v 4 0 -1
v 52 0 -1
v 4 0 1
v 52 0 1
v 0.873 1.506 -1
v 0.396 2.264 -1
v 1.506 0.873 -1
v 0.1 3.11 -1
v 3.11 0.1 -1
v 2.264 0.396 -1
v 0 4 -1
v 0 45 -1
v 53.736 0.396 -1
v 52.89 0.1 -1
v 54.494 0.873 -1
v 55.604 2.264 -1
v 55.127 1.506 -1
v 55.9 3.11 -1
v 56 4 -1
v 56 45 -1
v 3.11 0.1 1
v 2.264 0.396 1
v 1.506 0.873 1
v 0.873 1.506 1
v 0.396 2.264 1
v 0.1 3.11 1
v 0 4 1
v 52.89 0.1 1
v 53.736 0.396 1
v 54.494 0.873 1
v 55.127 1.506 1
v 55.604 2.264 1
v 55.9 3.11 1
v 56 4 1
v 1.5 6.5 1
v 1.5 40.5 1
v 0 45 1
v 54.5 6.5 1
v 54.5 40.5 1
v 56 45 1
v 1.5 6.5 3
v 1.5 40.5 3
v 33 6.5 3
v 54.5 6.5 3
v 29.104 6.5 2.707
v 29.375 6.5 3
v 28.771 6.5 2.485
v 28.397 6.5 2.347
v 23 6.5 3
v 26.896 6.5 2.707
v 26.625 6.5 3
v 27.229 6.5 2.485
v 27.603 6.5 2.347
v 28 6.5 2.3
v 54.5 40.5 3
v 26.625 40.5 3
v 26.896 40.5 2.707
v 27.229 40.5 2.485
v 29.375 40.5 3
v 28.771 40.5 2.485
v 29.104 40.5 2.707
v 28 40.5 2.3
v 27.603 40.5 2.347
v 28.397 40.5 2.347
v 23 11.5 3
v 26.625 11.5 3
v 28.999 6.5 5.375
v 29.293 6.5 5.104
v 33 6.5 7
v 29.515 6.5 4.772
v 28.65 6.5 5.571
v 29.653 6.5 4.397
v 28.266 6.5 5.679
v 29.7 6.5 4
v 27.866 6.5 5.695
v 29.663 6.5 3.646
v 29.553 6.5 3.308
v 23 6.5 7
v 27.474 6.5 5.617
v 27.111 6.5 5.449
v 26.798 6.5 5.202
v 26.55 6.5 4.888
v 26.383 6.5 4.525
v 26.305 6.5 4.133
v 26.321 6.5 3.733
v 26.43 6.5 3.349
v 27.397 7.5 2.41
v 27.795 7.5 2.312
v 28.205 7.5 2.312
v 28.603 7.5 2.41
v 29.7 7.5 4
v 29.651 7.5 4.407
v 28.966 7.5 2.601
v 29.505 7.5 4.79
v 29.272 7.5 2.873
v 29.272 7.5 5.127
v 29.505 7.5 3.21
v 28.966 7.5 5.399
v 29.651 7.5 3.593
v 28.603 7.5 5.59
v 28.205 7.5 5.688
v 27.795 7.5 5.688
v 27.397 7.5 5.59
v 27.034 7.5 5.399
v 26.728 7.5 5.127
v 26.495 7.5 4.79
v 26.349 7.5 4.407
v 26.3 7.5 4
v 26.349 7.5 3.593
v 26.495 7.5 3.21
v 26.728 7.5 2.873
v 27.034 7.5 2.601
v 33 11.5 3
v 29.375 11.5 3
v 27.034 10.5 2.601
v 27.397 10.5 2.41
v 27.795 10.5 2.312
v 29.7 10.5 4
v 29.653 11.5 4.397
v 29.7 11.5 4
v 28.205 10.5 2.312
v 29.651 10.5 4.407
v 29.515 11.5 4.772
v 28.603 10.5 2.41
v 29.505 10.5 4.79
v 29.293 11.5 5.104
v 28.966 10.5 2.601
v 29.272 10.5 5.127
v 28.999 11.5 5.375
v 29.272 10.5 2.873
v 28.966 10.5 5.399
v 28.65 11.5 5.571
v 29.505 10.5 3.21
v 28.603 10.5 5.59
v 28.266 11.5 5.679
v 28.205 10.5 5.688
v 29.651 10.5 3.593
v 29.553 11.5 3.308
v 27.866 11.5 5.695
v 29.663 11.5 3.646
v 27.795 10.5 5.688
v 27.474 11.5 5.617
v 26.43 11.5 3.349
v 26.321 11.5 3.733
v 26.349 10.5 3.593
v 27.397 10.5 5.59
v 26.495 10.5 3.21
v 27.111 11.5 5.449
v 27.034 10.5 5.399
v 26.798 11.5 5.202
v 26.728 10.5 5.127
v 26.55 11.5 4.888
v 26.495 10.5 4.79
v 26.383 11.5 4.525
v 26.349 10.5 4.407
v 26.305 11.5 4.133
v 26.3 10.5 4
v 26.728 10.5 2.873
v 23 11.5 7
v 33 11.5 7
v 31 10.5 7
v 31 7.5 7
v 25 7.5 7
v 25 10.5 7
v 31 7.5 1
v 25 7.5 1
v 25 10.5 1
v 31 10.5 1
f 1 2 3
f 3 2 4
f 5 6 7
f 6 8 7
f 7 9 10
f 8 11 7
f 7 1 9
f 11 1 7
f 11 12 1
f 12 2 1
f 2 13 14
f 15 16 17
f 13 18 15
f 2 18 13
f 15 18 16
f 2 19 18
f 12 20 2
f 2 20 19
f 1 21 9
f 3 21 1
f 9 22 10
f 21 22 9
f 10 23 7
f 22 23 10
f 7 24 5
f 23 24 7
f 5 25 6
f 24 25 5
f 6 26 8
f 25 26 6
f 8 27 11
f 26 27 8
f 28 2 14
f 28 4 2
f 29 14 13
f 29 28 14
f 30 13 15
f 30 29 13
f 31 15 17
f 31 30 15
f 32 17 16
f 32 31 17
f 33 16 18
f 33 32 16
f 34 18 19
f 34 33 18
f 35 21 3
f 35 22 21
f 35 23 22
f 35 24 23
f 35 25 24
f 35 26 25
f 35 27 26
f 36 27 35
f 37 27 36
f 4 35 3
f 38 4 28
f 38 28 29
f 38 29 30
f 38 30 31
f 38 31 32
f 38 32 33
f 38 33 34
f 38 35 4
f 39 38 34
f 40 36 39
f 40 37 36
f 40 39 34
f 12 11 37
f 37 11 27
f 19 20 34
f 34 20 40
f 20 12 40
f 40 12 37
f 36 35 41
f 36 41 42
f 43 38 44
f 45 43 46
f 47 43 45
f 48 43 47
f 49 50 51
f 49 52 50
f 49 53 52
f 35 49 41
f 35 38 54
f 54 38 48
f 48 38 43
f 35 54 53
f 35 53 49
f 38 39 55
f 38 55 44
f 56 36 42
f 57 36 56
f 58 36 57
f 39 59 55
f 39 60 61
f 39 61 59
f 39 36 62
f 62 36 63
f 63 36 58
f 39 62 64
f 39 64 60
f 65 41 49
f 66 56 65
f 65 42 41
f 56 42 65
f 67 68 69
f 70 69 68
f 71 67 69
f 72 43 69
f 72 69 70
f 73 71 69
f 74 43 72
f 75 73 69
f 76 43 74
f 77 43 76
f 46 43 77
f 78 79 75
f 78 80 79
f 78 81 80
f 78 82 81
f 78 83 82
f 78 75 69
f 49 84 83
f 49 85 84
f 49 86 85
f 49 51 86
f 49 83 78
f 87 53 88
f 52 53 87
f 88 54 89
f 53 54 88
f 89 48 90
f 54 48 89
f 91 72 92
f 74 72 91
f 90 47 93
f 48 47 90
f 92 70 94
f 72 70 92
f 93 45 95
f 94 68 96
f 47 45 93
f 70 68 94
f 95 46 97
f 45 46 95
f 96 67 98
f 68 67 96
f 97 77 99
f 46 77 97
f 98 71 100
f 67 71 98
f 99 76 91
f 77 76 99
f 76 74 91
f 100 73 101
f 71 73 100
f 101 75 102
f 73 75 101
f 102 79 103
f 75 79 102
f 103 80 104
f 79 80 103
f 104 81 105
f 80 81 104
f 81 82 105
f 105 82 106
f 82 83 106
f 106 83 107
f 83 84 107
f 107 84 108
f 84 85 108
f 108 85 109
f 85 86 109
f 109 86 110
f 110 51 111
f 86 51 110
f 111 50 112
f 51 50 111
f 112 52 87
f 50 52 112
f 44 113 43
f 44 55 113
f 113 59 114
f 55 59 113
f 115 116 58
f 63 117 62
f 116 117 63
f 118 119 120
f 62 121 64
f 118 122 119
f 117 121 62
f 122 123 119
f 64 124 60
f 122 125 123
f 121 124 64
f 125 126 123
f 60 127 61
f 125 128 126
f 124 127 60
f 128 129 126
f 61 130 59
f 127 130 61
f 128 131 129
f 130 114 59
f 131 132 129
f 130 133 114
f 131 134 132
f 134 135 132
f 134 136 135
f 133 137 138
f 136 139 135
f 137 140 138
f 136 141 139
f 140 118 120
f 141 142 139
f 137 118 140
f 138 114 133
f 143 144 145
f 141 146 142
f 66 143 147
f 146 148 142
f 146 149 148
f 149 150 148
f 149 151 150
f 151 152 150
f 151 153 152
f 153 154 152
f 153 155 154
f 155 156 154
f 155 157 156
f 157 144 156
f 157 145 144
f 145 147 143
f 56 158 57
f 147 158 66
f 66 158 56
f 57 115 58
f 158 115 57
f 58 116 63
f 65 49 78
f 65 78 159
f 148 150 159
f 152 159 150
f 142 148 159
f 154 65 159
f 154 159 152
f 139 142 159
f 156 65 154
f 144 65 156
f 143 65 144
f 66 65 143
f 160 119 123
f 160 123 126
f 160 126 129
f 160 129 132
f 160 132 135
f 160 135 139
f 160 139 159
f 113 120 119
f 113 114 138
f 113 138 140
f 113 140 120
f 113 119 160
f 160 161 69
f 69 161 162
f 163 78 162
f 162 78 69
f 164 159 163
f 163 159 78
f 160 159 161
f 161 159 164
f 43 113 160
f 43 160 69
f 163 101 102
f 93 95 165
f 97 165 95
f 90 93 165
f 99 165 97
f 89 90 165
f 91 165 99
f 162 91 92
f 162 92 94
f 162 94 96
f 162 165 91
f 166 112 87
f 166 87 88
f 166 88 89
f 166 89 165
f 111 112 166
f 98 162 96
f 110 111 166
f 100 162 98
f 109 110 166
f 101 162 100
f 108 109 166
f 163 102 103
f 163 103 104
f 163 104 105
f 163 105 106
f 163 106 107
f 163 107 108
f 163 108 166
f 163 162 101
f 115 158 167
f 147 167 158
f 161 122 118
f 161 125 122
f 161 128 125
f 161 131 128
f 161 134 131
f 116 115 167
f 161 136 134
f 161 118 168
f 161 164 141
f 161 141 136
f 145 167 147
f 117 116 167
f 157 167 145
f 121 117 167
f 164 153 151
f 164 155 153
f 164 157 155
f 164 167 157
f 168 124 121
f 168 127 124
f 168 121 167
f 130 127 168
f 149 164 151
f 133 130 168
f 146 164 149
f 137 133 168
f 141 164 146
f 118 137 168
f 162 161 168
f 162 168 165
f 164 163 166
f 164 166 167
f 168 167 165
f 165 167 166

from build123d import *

# Parameters (mm, degrees)
SKETCH_W        = 56
SKETCH_H        = 45
PAD_DEPTH       = 1
SKETCH001_W     = 53
SKETCH001_H     = 34
PAD001_DEPTH    = 2
SKETCH002_W     = 10
SKETCH002_H     = 5
PAD002_DEPTH    = 4
SKETCH003_R     = 1.7
POCKET_DEPTH    = 38.501
SKETCH004_W     = 6
SKETCH004_H     = 3
POCKET001_DEPTH = 6
FILLET_R        = 4


with BuildPart() as part:
    # Sketch → Pad (new body, symmetric)
    with BuildSketch(Plane.XY):
        with Locations((28, 22.5)):
            Rectangle(SKETCH_W, SKETCH_H)
    extrude(amount=PAD_DEPTH, both=True)

    # Sketch001 (on Face6 of Pad) → Pad001 (join)
    with BuildSketch(Plane.XY.offset(1)):
        with Locations((28, 23.5)):
            Rectangle(SKETCH001_W, SKETCH001_H)
    extrude(amount=PAD001_DEPTH)

    # Sketch002 (on Face11 of Pad001) → Pad002 (join)
    with BuildSketch(Plane.XY.offset(3)):
        with Locations((28, 9)):
            Rectangle(SKETCH002_W, SKETCH002_H)
    extrude(amount=PAD002_DEPTH)

    # Sketch003 (on Face12 of Pad002) → Pocket (cut, through all)
    with BuildSketch(Plane.XZ.offset(-6.5)):
        with Locations((28, 4)):
            Circle(SKETCH003_R)
    extrude(amount=-POCKET_DEPTH, mode=Mode.SUBTRACT)

    # Sketch004 → Pocket001 (cut)
    with BuildSketch(Plane.XY.offset(7)):
        with Locations((28, 9)):
            Rectangle(SKETCH004_W, SKETCH004_H)
    extrude(amount=-POCKET001_DEPTH, mode=Mode.SUBTRACT)

    # Fillet
    fillet_edges = [part.edges().sort_by_distance(p)[0] for p in [
        (0, 0, 0),
        (56, 0, 0),
    ]]
    fillet(fillet_edges, radius=FILLET_R)


solid = part.part
